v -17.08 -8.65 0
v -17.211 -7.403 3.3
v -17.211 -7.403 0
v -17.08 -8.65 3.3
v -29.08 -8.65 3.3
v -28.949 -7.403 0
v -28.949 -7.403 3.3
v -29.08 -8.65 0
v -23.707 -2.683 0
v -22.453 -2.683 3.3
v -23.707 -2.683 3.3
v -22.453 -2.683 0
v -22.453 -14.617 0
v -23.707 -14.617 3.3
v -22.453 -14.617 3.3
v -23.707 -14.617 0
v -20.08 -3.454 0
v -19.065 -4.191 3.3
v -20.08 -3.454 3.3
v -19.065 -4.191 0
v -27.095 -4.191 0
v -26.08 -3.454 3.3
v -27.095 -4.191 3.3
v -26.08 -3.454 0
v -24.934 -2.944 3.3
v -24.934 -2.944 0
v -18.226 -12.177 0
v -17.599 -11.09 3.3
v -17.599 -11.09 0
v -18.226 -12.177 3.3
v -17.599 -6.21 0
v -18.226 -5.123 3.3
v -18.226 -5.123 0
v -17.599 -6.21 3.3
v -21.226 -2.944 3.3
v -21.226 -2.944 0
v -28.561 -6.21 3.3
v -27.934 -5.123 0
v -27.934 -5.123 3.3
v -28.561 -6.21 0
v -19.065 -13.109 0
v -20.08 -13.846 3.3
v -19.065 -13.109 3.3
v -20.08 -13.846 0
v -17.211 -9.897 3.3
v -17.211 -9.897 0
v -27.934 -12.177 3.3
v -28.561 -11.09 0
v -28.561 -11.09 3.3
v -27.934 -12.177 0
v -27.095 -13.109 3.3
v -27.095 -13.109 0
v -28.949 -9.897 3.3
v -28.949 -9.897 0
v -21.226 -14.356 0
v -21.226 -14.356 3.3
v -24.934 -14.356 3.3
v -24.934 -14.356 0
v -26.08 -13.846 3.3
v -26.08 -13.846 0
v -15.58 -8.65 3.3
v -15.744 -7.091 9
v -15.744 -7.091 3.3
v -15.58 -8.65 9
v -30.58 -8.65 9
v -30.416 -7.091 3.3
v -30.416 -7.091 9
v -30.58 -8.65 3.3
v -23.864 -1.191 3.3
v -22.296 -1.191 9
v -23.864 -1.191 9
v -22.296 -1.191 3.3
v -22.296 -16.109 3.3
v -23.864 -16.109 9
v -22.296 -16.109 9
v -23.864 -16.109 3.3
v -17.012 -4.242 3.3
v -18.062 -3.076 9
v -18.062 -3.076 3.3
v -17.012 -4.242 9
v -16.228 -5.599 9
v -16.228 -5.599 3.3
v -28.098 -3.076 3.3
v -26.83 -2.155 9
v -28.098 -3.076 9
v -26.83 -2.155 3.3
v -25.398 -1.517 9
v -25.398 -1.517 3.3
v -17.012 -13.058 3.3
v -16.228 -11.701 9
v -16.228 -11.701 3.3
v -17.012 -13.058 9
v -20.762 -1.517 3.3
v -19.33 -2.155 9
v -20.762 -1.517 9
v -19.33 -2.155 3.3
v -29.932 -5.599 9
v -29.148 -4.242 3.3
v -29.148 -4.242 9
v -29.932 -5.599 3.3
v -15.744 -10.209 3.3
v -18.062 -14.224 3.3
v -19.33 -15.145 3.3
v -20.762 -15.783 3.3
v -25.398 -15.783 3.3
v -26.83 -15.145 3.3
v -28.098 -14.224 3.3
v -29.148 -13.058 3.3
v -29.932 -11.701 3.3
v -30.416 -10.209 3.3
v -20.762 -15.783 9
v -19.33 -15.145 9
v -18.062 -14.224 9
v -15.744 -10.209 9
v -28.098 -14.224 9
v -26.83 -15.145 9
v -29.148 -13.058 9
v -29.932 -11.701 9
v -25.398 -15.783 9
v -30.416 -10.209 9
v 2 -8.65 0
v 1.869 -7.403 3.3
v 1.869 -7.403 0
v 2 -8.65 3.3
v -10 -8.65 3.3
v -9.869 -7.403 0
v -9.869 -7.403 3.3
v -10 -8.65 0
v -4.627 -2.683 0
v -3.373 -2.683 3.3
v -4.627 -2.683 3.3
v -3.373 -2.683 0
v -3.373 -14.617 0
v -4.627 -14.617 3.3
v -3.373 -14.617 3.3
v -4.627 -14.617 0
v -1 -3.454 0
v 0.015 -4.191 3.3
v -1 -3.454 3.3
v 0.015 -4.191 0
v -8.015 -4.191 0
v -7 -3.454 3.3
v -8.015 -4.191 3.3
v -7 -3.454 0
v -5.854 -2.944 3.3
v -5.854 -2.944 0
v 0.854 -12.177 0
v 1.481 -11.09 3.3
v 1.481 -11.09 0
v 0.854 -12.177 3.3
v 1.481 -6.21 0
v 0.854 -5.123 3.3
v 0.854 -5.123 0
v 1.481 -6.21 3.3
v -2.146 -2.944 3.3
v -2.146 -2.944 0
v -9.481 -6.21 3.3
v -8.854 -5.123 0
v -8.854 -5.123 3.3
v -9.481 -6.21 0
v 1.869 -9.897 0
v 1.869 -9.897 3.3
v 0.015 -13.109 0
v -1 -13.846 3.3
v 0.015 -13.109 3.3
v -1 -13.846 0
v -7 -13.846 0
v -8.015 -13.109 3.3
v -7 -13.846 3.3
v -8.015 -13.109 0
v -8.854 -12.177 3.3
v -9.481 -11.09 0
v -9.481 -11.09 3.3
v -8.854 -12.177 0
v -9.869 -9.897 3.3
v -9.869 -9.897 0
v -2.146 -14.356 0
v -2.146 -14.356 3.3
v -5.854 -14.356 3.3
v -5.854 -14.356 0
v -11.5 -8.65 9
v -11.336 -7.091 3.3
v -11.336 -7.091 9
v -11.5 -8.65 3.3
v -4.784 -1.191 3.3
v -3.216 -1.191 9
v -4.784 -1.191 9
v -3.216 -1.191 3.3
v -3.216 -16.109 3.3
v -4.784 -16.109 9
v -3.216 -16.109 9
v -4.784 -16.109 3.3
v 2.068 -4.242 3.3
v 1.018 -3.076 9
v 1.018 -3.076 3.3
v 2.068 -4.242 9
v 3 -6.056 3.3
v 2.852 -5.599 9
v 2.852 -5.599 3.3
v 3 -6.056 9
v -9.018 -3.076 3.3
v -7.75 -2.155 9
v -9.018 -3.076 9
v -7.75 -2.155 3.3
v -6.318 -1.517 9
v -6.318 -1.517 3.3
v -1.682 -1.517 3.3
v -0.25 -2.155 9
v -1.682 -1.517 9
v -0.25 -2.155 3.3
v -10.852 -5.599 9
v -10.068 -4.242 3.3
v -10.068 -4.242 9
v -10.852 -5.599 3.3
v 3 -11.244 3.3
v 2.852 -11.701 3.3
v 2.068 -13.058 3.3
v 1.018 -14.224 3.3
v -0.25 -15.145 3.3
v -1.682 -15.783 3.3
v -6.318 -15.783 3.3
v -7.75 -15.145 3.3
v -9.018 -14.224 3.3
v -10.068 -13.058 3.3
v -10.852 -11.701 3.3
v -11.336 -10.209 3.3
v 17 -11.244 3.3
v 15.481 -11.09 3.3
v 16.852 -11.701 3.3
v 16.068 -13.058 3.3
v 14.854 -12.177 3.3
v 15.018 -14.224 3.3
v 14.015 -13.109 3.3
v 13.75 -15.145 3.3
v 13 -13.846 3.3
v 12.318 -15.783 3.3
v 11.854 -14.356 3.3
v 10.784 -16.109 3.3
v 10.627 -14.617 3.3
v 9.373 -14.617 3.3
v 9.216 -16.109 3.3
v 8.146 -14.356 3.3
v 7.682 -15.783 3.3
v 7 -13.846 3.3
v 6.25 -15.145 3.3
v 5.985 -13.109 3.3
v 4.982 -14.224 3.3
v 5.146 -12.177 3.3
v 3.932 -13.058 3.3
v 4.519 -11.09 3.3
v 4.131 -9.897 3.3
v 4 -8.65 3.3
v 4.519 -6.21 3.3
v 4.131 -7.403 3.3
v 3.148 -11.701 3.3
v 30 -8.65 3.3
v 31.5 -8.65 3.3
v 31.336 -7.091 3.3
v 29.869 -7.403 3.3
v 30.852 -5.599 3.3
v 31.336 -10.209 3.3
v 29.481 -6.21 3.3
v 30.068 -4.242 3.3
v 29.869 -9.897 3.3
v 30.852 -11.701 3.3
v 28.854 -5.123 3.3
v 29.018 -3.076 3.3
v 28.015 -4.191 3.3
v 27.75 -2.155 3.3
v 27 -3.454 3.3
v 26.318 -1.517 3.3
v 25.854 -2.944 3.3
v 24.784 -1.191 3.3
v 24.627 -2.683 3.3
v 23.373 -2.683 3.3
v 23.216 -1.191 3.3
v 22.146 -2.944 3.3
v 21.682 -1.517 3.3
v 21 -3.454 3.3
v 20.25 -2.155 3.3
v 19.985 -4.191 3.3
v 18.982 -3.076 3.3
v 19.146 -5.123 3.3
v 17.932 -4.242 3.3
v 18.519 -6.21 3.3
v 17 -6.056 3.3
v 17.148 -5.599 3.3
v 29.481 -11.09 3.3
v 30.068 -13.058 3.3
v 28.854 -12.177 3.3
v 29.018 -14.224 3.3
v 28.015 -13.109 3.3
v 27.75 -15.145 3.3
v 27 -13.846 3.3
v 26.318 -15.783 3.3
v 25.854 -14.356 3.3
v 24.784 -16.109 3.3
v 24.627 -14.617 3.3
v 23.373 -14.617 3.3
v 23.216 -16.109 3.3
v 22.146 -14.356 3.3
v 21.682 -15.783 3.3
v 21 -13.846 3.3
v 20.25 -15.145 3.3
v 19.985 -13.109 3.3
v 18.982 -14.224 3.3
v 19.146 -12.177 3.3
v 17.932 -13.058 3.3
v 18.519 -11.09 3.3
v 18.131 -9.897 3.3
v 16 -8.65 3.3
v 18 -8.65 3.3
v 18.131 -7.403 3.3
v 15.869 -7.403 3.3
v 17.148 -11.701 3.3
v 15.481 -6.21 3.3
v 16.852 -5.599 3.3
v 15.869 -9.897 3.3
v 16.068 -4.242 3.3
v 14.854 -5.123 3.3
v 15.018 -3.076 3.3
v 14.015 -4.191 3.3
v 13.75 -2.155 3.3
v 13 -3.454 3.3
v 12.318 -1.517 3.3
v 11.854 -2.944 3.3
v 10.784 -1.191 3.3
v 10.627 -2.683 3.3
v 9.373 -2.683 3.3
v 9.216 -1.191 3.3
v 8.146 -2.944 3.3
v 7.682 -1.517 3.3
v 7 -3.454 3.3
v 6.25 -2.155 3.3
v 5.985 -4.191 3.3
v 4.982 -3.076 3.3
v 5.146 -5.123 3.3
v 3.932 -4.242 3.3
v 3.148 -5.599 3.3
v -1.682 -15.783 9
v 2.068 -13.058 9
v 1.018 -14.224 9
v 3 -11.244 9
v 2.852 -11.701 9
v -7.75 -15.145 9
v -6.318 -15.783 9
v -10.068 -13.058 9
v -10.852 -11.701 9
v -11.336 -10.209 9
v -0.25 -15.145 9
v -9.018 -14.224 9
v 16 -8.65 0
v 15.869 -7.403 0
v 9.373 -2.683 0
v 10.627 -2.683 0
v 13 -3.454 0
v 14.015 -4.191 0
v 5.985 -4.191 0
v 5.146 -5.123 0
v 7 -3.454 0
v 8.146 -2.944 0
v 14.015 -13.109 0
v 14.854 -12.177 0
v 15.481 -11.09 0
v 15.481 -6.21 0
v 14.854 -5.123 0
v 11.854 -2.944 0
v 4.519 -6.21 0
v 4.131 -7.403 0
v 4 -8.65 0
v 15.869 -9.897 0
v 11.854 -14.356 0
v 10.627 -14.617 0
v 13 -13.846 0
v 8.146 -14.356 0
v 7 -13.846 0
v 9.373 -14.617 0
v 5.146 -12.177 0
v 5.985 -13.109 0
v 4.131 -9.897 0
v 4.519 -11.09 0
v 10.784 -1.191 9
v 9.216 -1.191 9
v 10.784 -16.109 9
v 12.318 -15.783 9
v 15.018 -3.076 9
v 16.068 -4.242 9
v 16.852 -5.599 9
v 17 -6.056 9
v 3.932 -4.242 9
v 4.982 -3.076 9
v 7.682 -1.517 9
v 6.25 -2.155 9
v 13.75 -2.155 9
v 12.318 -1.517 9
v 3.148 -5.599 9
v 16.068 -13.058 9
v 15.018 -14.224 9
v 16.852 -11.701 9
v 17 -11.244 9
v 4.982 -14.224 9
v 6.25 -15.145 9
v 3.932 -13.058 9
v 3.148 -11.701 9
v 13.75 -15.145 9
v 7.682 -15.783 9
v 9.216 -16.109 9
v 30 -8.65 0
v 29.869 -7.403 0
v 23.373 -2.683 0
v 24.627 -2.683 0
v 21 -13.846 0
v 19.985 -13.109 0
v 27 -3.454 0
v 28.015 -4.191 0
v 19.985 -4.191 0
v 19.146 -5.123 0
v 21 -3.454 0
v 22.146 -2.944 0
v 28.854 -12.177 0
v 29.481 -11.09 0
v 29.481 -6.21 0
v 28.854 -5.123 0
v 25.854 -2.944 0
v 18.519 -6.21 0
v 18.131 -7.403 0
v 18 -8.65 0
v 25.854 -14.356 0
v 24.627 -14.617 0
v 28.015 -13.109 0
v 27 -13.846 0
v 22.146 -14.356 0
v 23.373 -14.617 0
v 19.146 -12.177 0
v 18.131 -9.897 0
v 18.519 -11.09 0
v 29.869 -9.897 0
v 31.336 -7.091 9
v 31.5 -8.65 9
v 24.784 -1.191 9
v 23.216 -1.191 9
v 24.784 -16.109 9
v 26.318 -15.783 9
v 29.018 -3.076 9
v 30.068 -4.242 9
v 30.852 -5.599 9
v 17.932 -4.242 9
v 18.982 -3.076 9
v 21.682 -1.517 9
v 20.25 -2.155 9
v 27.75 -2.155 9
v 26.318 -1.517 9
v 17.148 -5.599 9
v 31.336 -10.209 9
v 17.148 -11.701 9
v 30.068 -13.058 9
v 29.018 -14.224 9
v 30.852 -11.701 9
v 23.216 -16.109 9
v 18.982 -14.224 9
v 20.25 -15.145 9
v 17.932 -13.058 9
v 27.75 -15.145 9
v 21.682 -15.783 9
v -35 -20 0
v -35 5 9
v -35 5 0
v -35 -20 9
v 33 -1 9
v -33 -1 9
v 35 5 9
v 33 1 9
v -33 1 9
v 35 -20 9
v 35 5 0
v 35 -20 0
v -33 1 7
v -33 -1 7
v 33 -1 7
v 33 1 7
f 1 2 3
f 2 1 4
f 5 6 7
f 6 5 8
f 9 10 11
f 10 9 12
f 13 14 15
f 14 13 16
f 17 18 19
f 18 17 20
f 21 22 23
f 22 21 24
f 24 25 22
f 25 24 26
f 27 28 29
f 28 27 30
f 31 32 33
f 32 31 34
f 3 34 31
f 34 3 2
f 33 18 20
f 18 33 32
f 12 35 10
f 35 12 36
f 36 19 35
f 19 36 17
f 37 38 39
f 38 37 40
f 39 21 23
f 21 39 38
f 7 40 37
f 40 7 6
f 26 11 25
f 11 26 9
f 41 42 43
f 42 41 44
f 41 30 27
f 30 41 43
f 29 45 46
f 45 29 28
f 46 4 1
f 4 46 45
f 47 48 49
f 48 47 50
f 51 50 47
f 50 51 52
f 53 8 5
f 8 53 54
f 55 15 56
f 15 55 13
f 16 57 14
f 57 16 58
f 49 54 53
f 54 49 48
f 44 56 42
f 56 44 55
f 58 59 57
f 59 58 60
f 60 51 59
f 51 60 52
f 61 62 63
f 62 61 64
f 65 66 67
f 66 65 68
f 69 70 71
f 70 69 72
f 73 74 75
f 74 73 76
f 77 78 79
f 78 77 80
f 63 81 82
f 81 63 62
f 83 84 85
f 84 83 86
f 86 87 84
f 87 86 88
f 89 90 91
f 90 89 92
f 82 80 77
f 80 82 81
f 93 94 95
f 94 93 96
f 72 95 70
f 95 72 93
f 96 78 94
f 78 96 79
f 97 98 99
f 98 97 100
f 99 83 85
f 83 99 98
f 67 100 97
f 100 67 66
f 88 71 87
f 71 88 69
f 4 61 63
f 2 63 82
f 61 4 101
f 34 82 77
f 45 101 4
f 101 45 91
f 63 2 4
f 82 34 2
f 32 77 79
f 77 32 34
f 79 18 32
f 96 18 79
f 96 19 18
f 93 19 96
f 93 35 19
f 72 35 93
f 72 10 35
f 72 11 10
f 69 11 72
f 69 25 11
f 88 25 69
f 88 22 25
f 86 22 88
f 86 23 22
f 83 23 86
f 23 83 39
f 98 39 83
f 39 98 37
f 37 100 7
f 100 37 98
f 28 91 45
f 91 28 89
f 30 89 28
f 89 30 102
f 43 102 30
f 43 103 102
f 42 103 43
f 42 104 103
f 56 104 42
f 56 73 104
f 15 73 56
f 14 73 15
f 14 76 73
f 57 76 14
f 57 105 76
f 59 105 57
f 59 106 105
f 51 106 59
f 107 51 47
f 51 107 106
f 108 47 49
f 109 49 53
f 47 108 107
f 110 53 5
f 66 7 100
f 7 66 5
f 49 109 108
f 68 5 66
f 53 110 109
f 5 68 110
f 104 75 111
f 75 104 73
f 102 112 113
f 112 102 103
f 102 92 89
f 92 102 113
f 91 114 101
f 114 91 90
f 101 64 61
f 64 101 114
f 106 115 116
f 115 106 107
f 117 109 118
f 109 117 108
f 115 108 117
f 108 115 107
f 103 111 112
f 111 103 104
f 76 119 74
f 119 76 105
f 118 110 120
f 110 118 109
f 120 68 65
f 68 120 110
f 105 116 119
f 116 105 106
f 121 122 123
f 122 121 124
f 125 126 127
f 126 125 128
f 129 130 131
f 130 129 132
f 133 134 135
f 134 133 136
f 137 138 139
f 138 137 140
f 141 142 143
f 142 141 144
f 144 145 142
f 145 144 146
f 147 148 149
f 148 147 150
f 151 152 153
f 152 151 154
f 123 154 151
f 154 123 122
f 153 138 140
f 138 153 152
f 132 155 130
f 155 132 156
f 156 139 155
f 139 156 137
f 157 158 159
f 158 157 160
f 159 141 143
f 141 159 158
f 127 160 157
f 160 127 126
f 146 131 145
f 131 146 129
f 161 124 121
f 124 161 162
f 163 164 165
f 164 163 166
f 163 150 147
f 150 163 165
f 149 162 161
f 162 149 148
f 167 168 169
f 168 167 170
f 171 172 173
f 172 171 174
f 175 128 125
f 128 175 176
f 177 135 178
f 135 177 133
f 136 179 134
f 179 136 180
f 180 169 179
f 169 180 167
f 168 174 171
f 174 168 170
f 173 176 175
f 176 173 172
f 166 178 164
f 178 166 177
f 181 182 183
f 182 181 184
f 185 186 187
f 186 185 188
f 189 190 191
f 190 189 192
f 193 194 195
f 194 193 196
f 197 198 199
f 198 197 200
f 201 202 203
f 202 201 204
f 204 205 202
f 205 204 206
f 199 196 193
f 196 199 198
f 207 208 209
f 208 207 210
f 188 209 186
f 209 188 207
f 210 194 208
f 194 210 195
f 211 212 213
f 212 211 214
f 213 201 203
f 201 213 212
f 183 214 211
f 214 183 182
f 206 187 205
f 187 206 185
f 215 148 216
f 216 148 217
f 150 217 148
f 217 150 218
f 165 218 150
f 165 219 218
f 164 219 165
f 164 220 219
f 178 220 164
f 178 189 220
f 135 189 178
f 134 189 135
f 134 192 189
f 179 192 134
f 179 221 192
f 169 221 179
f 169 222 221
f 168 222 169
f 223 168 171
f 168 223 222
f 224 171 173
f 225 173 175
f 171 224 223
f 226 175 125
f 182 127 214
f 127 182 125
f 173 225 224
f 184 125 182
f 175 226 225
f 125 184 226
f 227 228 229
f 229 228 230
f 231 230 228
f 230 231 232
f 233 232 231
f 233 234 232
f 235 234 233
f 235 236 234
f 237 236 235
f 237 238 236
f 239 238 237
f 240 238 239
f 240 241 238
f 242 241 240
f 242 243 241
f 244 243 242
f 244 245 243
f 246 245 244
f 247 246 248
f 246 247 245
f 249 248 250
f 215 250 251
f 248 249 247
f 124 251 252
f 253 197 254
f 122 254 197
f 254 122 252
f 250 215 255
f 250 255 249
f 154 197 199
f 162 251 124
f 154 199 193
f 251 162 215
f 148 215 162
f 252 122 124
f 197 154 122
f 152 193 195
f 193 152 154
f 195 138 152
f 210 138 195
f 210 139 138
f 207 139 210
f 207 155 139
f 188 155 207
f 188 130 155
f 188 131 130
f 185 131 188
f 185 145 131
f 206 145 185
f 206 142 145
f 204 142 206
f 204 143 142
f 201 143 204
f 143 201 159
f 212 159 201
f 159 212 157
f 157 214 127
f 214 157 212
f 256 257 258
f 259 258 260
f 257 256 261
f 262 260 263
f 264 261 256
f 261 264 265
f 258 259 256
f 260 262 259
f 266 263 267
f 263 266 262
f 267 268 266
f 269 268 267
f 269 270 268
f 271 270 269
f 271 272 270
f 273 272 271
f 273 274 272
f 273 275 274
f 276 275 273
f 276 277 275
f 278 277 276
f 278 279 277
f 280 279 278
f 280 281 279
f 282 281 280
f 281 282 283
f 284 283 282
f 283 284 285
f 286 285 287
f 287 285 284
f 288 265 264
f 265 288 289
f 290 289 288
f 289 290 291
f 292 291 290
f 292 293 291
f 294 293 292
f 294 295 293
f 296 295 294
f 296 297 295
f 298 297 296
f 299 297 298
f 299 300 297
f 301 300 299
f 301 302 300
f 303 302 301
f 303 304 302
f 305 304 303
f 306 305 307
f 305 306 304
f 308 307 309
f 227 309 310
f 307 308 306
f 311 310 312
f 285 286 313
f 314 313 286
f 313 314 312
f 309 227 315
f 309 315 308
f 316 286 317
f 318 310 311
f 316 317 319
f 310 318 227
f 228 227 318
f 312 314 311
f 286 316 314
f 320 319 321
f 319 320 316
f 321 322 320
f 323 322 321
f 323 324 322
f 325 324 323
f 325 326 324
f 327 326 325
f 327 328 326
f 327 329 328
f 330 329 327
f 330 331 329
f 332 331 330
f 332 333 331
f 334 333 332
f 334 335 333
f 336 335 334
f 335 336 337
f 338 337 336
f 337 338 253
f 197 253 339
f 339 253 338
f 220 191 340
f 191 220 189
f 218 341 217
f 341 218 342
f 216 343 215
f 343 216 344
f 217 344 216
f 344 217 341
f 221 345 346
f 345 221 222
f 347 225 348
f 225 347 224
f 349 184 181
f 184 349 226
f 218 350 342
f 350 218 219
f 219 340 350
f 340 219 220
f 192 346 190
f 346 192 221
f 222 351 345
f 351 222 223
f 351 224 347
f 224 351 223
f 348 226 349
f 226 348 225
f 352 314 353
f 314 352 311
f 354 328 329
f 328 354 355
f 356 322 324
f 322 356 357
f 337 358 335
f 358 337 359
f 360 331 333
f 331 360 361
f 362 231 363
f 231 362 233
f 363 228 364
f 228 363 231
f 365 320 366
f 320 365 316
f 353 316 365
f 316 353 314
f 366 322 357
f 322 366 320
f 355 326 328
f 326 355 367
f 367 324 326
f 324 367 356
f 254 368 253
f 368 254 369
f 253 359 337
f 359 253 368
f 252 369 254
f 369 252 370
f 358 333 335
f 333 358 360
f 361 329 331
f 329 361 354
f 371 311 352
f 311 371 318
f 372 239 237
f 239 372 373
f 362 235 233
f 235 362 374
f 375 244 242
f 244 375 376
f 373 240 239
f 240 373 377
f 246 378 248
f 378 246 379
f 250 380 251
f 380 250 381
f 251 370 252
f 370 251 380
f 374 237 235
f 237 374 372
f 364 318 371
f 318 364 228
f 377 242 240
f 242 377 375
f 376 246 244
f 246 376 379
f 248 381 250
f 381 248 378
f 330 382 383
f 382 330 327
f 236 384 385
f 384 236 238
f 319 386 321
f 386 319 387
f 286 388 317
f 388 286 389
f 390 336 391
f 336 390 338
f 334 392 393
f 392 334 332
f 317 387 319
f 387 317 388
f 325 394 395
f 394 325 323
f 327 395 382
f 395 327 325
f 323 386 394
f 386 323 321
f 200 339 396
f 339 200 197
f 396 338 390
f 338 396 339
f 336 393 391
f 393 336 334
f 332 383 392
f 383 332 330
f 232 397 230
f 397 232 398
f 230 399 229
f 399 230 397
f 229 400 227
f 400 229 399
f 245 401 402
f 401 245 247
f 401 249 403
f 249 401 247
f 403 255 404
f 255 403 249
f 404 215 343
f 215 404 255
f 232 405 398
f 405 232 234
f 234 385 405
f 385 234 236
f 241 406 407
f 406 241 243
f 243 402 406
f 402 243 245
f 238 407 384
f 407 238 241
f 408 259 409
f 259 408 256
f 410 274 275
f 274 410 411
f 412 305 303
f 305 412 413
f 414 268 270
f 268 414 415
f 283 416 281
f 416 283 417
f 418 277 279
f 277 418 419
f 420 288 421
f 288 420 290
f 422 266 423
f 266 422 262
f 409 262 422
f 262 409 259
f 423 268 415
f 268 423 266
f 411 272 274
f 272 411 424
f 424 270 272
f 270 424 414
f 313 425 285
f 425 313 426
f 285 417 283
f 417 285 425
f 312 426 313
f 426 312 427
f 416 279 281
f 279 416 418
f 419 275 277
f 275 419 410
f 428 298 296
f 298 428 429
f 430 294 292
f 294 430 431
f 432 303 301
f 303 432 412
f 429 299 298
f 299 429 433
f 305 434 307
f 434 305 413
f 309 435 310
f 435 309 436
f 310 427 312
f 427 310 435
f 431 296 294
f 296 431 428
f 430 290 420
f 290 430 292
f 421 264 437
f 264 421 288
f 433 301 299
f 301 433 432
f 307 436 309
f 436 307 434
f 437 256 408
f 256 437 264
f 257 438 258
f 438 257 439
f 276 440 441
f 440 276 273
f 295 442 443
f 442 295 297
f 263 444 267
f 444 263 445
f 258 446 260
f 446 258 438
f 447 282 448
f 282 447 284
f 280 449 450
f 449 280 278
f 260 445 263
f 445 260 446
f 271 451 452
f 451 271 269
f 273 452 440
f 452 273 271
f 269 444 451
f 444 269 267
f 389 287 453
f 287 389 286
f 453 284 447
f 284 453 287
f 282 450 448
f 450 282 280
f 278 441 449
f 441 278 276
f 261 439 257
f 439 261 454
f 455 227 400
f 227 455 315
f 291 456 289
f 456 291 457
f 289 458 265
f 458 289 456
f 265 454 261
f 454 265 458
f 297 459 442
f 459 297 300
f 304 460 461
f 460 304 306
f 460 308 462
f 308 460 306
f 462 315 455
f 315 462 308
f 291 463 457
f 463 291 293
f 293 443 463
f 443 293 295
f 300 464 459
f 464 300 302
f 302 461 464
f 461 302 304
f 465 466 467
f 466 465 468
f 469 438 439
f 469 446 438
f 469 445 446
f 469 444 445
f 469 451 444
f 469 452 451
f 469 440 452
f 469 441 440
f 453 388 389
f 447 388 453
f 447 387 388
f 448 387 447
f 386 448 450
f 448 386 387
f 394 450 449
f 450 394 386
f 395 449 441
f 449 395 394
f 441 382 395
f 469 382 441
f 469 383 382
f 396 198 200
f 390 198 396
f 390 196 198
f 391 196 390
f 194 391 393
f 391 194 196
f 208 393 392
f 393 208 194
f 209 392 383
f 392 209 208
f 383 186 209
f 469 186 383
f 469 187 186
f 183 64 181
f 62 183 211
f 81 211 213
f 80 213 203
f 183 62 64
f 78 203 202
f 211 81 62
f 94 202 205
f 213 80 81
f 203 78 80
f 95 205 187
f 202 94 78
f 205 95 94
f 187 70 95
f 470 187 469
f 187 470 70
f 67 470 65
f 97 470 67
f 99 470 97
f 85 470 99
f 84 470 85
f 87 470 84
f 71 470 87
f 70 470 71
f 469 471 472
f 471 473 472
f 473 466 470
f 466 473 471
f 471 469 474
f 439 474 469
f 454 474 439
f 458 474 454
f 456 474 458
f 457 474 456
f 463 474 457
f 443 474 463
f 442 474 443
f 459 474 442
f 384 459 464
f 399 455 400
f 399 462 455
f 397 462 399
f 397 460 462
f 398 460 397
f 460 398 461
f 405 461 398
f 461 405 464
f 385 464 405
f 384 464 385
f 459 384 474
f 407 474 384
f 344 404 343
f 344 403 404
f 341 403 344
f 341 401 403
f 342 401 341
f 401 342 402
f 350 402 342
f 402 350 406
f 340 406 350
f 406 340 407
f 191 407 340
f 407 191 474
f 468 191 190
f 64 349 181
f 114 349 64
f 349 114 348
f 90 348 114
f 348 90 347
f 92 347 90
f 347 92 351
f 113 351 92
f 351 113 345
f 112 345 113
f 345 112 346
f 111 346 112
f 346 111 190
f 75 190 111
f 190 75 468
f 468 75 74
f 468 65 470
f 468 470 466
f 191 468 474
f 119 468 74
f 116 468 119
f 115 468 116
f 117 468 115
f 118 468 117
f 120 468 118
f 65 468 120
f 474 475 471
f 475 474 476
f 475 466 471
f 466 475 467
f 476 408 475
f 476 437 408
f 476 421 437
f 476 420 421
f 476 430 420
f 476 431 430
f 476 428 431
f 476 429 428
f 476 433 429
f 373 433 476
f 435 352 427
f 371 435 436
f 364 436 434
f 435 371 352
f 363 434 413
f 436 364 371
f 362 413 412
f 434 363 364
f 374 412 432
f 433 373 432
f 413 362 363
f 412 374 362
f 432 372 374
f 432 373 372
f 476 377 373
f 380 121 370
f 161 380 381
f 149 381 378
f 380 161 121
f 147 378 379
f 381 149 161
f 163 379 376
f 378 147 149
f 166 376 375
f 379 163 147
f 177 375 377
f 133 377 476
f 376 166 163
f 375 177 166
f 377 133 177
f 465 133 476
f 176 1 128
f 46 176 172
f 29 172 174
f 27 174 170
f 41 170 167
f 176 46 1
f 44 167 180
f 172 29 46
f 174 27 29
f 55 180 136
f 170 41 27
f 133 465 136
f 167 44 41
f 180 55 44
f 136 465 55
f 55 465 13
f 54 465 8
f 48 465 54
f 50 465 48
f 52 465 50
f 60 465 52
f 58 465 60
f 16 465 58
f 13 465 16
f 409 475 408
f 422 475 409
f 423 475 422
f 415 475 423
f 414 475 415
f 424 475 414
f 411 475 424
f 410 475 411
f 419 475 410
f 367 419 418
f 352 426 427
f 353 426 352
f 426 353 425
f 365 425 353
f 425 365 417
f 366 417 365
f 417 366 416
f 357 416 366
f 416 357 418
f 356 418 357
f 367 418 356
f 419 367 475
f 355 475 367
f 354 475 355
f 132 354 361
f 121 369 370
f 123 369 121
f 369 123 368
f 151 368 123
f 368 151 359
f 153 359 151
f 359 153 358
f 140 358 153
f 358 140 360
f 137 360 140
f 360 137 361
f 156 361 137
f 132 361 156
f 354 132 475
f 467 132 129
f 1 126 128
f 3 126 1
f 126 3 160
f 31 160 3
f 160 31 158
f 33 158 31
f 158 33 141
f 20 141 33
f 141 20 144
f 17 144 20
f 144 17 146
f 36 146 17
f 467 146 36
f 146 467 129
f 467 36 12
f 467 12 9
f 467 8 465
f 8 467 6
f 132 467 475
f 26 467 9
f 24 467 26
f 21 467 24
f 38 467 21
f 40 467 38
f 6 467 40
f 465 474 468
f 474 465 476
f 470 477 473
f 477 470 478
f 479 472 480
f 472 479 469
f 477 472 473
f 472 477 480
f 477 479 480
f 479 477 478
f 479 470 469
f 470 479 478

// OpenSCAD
// file: BoxCommon.scad
// Sum array members:
function suma(array,start,end) =
    (start==end)
    ? array[start]
    : suma(array, start+1, end) + array[start];
function e(clear,o) =// Add clear to demensions of o
     (is_list(clear)) ?
        [o.x+clear.x,o.y+clear.y,o.z+clear.z] :
        [o.x+clear,o.y+clear,o.z+clear];
 
DISPBLOCK=[16+50.2*3,44,12]; // Z is arbitrary at the moment

// FF=Fudge Factor

DMM_BOARD_X=66 ; // 63 NO FF FROM DRAWING
DMM_BOARD_Y=2 ; // 1.6 NO FF Measured
S_VO_OFFS=-19.08; // From drawing
S_Widths=14; // FROM Drawing
// Places 5A jack at edge of board.:
S_FUDGE=DMM_BOARD_X/2-S_Widths*2-2; 
S1=-S_Widths/2+S_FUDGE;
S0=S_VO_OFFS+S1;
S2=S_Widths/2+S_FUDGE; 
S3=S2+S_Widths;
DMM_JAX_X=[S0,S1,S2,S3];

// STack up to C/L of jack in Y - Measured terms
DMM_JAX_Y=DMM_BOARD_Y/2+4.9+5.5/2; 
DMM_JAX_LOWER_DIA=12; // Measured
DMM_JAX_UPPER_DIA=15; // Same as S_Widths
DMM_JAX_Z_OFFS=3.3 ; // How much of the lower shoulder shows.

for (i=[DMM_JAX_X])
    echo(i);
echo(DMM_JAX_Y);
// main file
include <BoxCommon.scad>;
$fs=.01;
// This is going to look upside down because of
// coordinate system for the board is from the front.
// Whereas this view is from the back. Its all
// flipped on the x axis.

difference()
{
    // Base block
    translate([-70/2,-20,0]) cube([70,25,9]);
    // The board is centered on 0,0 and 7 above z
    translate([-DMM_BOARD_X/2,-DMM_BOARD_Y/2,7])
        cube([DMM_BOARD_X, DMM_BOARD_Y,8]);
    for (x=DMM_JAX_X)
    {
        translate([x,-DMM_JAX_Y,-.01])
            cylinder(h=20,d=DMM_JAX_LOWER_DIA);
        translate([x,-DMM_JAX_Y,DMM_JAX_Z_OFFS])
            cylinder(h=20,d=DMM_JAX_UPPER_DIA);
    }
}
